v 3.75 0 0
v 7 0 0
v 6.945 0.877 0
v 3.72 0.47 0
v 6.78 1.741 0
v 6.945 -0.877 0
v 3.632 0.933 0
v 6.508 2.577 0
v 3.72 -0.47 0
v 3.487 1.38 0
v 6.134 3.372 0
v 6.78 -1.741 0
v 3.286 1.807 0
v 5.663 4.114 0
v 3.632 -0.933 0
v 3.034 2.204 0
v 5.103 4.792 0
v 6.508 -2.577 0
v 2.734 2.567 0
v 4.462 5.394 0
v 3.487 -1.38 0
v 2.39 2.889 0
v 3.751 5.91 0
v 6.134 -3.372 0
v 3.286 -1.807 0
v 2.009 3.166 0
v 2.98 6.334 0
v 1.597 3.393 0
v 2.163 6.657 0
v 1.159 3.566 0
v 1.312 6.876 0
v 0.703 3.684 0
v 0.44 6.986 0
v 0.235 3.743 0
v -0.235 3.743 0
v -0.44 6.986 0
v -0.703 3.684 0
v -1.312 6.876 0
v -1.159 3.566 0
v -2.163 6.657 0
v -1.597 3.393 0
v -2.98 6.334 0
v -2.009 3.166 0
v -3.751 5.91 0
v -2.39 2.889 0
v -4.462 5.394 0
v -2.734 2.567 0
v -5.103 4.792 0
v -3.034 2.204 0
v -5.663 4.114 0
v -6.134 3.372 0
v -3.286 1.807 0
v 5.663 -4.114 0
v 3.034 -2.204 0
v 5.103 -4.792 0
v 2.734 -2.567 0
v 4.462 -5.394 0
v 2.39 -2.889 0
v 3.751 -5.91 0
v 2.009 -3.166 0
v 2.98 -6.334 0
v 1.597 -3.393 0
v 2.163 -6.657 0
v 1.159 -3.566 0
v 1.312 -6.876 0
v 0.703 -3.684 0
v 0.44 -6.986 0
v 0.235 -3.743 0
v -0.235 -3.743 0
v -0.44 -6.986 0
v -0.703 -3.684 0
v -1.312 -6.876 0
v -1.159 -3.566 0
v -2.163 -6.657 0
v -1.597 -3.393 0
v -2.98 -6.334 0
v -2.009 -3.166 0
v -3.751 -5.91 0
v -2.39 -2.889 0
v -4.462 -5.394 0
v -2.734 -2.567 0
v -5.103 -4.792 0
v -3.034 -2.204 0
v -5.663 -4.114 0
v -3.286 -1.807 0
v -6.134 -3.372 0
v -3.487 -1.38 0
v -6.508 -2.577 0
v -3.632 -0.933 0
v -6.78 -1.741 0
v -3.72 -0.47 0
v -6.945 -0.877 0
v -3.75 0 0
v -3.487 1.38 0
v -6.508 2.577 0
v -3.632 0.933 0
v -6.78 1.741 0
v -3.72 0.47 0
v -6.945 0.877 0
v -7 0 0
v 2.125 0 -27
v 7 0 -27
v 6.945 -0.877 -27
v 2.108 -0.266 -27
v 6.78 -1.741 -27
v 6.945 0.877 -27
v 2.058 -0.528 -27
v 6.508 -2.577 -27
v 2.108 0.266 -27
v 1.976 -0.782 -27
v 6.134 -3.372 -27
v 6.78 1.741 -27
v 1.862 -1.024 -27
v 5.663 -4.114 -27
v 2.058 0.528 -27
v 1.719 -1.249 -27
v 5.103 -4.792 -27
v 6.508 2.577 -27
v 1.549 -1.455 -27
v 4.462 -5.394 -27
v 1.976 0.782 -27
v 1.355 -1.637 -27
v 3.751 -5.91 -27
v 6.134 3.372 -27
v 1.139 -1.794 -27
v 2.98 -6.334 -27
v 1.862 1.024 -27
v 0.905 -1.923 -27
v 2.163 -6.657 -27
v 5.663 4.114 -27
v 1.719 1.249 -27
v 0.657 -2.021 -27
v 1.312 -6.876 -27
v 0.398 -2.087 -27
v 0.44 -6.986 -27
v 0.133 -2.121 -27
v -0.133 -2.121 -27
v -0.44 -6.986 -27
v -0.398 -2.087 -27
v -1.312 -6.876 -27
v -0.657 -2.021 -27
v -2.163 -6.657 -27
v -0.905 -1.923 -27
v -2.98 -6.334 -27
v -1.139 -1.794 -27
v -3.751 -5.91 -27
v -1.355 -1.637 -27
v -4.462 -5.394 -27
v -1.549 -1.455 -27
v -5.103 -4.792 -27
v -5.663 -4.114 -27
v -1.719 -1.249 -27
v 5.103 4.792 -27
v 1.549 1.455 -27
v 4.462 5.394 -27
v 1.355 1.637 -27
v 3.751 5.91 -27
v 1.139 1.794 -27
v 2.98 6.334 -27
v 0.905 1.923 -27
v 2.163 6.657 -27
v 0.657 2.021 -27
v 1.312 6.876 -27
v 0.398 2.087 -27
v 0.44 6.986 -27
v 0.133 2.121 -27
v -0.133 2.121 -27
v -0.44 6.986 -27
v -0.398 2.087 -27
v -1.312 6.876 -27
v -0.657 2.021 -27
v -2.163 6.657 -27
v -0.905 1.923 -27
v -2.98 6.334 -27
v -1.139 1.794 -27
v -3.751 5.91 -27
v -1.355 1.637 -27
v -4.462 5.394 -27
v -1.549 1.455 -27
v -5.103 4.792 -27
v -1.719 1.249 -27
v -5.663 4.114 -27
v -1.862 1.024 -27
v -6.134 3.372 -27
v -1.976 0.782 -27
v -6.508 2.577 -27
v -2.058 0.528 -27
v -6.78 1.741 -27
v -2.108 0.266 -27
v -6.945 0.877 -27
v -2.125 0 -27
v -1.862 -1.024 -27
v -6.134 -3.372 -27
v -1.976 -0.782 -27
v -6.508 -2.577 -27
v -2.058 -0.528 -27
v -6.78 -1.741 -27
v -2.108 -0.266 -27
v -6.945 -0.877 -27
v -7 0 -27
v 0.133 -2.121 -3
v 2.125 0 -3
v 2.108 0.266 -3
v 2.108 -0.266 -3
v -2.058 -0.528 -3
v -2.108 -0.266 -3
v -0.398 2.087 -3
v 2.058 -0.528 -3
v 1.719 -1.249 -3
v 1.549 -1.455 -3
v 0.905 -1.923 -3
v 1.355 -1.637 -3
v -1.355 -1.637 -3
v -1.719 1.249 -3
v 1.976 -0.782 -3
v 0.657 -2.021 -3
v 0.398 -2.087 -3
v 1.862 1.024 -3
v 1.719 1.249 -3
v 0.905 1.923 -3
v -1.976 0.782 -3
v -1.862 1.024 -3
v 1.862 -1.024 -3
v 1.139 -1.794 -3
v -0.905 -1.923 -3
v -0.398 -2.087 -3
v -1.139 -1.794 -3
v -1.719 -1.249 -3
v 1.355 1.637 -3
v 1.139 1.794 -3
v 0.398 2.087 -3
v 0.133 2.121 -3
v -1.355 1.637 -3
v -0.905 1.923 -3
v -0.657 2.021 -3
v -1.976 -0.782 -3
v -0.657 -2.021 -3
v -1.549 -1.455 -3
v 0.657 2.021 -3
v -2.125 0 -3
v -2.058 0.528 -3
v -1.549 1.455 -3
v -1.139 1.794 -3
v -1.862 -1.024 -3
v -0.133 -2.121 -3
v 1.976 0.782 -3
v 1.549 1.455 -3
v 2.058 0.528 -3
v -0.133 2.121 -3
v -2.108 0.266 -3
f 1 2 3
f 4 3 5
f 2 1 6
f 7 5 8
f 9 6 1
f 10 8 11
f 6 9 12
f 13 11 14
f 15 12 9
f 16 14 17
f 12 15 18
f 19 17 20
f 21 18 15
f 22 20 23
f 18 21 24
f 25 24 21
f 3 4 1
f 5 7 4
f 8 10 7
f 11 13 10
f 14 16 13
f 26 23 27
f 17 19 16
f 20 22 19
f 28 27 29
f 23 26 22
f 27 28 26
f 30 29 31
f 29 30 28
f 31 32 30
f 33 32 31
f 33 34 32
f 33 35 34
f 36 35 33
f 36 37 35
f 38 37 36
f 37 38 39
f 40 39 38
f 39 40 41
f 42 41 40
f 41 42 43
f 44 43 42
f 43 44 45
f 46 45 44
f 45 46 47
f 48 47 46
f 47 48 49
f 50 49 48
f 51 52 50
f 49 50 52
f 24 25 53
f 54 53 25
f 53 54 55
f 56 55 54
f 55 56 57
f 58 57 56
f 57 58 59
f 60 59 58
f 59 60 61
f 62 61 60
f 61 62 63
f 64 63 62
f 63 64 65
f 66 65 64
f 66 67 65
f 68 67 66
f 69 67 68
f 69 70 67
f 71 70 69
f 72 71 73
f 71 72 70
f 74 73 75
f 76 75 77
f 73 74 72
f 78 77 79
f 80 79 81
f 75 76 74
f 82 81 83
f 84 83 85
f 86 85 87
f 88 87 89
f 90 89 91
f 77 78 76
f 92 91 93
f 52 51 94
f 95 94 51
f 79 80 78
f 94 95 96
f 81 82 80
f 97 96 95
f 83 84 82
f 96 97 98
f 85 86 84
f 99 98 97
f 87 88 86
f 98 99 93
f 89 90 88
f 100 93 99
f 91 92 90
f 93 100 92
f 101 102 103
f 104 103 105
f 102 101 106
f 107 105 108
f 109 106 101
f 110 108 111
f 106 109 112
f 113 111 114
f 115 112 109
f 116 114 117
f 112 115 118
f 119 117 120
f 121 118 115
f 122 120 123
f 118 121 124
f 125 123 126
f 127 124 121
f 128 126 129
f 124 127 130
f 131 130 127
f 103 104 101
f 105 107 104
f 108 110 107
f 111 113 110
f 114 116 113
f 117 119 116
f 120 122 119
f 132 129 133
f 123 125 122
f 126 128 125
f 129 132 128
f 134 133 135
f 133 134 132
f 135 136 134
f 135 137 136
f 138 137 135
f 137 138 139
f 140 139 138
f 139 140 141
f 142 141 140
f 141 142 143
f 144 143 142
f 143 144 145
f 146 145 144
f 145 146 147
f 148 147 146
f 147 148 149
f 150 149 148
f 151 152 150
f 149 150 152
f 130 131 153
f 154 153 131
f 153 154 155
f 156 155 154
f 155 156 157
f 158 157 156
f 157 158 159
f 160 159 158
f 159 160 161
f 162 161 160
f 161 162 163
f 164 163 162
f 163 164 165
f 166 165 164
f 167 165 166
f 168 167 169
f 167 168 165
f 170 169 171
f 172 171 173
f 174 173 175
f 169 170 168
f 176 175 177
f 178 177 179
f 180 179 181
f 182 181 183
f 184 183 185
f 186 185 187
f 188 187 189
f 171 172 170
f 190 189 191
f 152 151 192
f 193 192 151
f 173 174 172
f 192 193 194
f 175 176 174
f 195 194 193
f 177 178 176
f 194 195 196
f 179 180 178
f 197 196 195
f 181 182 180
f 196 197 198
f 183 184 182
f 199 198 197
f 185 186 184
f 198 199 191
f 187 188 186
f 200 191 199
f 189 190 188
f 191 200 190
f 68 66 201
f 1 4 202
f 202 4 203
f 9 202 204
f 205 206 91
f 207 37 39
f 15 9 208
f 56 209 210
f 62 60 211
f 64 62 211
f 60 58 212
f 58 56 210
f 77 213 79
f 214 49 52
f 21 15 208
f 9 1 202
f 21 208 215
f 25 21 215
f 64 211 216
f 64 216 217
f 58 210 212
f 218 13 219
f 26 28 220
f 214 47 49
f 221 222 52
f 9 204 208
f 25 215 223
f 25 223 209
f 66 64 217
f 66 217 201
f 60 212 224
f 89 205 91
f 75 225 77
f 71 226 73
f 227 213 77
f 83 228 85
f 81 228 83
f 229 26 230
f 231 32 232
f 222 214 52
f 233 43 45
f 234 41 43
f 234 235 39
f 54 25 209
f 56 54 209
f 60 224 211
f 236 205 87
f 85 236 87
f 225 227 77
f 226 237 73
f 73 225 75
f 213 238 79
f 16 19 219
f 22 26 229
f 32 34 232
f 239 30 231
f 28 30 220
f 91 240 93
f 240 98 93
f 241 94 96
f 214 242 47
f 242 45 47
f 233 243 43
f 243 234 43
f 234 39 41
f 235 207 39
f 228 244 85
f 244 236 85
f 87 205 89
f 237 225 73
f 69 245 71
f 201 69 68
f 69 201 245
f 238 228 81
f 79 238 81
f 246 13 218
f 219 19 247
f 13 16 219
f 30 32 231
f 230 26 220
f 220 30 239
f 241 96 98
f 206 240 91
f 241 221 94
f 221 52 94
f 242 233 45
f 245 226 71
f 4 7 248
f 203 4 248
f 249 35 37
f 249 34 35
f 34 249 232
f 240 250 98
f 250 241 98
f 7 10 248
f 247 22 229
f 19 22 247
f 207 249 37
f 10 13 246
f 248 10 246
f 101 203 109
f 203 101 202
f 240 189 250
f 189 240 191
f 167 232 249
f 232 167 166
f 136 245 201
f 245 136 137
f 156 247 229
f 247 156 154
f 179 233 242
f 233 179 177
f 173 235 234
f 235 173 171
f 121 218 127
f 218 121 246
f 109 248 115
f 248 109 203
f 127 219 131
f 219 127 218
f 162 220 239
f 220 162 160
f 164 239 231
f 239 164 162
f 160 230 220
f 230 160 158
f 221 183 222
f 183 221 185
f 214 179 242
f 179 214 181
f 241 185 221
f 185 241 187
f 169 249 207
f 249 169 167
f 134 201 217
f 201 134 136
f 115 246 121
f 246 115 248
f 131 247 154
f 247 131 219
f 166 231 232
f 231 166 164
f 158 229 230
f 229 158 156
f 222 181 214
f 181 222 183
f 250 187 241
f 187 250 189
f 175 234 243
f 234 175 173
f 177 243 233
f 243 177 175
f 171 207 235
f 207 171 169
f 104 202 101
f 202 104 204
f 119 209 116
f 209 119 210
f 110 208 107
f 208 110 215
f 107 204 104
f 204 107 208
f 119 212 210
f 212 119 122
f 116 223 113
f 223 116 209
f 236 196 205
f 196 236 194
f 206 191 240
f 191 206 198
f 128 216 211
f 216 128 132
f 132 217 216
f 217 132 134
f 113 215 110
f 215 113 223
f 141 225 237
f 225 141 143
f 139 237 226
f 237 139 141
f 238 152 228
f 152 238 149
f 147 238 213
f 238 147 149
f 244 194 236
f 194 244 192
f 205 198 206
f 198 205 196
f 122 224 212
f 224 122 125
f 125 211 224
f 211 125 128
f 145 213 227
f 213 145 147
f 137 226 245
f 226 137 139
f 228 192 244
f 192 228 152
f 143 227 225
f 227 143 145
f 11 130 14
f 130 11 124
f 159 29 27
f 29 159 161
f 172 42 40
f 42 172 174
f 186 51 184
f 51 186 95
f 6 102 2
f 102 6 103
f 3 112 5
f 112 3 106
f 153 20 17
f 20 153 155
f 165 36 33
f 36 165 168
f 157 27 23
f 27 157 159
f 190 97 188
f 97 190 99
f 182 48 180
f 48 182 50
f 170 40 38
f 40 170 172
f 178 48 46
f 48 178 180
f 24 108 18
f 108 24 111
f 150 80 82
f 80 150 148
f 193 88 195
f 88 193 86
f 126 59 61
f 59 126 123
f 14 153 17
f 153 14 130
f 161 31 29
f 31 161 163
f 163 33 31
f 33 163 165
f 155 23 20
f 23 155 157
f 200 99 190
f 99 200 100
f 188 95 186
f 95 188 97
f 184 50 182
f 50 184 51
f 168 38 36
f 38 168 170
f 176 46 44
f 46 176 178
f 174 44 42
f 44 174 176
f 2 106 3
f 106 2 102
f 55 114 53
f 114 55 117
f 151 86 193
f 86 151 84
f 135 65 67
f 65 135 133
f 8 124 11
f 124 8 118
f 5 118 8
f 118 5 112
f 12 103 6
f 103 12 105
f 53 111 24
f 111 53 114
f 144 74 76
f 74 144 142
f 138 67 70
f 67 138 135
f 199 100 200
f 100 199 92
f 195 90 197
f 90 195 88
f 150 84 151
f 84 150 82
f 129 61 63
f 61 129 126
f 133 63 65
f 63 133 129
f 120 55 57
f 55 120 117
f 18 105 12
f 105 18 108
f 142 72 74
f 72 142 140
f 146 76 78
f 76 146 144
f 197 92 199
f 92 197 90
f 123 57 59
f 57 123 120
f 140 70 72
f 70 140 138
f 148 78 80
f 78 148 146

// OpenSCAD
$fn = 50;


difference() {
	union() {
		translate(v = [0, 0, -27.0000000000]) {
			cylinder(h = 27, r = 7.0000000000);
		}
		cylinder(h = 0, r = 10.0000000000);
	}
	union() {
		translate(v = [0, 0, 0]) {
			rotate(a = [0, 0, 0]) {
				difference() {
					union() {
						#translate(v = [0, 0, -27.0000000000]) {
							cylinder(h = 27, r = 2.0000000000);
						}
						#translate(v = [0, 0, -3]) {
							cylinder(h = 3, r = 7.0000000000, r1 = 2.1250000000, r2 = 3.7500000000);
						}
						#translate(v = [0, 0, -27.0000000000]) {
							cylinder(h = 27, r = 2.1250000000);
						}
						#translate(v = [0, 0, -27.0000000000]) {
							cylinder(h = 27, r = 2.0000000000);
						}
					}
					union();
				}
			}
		}
	}
}
